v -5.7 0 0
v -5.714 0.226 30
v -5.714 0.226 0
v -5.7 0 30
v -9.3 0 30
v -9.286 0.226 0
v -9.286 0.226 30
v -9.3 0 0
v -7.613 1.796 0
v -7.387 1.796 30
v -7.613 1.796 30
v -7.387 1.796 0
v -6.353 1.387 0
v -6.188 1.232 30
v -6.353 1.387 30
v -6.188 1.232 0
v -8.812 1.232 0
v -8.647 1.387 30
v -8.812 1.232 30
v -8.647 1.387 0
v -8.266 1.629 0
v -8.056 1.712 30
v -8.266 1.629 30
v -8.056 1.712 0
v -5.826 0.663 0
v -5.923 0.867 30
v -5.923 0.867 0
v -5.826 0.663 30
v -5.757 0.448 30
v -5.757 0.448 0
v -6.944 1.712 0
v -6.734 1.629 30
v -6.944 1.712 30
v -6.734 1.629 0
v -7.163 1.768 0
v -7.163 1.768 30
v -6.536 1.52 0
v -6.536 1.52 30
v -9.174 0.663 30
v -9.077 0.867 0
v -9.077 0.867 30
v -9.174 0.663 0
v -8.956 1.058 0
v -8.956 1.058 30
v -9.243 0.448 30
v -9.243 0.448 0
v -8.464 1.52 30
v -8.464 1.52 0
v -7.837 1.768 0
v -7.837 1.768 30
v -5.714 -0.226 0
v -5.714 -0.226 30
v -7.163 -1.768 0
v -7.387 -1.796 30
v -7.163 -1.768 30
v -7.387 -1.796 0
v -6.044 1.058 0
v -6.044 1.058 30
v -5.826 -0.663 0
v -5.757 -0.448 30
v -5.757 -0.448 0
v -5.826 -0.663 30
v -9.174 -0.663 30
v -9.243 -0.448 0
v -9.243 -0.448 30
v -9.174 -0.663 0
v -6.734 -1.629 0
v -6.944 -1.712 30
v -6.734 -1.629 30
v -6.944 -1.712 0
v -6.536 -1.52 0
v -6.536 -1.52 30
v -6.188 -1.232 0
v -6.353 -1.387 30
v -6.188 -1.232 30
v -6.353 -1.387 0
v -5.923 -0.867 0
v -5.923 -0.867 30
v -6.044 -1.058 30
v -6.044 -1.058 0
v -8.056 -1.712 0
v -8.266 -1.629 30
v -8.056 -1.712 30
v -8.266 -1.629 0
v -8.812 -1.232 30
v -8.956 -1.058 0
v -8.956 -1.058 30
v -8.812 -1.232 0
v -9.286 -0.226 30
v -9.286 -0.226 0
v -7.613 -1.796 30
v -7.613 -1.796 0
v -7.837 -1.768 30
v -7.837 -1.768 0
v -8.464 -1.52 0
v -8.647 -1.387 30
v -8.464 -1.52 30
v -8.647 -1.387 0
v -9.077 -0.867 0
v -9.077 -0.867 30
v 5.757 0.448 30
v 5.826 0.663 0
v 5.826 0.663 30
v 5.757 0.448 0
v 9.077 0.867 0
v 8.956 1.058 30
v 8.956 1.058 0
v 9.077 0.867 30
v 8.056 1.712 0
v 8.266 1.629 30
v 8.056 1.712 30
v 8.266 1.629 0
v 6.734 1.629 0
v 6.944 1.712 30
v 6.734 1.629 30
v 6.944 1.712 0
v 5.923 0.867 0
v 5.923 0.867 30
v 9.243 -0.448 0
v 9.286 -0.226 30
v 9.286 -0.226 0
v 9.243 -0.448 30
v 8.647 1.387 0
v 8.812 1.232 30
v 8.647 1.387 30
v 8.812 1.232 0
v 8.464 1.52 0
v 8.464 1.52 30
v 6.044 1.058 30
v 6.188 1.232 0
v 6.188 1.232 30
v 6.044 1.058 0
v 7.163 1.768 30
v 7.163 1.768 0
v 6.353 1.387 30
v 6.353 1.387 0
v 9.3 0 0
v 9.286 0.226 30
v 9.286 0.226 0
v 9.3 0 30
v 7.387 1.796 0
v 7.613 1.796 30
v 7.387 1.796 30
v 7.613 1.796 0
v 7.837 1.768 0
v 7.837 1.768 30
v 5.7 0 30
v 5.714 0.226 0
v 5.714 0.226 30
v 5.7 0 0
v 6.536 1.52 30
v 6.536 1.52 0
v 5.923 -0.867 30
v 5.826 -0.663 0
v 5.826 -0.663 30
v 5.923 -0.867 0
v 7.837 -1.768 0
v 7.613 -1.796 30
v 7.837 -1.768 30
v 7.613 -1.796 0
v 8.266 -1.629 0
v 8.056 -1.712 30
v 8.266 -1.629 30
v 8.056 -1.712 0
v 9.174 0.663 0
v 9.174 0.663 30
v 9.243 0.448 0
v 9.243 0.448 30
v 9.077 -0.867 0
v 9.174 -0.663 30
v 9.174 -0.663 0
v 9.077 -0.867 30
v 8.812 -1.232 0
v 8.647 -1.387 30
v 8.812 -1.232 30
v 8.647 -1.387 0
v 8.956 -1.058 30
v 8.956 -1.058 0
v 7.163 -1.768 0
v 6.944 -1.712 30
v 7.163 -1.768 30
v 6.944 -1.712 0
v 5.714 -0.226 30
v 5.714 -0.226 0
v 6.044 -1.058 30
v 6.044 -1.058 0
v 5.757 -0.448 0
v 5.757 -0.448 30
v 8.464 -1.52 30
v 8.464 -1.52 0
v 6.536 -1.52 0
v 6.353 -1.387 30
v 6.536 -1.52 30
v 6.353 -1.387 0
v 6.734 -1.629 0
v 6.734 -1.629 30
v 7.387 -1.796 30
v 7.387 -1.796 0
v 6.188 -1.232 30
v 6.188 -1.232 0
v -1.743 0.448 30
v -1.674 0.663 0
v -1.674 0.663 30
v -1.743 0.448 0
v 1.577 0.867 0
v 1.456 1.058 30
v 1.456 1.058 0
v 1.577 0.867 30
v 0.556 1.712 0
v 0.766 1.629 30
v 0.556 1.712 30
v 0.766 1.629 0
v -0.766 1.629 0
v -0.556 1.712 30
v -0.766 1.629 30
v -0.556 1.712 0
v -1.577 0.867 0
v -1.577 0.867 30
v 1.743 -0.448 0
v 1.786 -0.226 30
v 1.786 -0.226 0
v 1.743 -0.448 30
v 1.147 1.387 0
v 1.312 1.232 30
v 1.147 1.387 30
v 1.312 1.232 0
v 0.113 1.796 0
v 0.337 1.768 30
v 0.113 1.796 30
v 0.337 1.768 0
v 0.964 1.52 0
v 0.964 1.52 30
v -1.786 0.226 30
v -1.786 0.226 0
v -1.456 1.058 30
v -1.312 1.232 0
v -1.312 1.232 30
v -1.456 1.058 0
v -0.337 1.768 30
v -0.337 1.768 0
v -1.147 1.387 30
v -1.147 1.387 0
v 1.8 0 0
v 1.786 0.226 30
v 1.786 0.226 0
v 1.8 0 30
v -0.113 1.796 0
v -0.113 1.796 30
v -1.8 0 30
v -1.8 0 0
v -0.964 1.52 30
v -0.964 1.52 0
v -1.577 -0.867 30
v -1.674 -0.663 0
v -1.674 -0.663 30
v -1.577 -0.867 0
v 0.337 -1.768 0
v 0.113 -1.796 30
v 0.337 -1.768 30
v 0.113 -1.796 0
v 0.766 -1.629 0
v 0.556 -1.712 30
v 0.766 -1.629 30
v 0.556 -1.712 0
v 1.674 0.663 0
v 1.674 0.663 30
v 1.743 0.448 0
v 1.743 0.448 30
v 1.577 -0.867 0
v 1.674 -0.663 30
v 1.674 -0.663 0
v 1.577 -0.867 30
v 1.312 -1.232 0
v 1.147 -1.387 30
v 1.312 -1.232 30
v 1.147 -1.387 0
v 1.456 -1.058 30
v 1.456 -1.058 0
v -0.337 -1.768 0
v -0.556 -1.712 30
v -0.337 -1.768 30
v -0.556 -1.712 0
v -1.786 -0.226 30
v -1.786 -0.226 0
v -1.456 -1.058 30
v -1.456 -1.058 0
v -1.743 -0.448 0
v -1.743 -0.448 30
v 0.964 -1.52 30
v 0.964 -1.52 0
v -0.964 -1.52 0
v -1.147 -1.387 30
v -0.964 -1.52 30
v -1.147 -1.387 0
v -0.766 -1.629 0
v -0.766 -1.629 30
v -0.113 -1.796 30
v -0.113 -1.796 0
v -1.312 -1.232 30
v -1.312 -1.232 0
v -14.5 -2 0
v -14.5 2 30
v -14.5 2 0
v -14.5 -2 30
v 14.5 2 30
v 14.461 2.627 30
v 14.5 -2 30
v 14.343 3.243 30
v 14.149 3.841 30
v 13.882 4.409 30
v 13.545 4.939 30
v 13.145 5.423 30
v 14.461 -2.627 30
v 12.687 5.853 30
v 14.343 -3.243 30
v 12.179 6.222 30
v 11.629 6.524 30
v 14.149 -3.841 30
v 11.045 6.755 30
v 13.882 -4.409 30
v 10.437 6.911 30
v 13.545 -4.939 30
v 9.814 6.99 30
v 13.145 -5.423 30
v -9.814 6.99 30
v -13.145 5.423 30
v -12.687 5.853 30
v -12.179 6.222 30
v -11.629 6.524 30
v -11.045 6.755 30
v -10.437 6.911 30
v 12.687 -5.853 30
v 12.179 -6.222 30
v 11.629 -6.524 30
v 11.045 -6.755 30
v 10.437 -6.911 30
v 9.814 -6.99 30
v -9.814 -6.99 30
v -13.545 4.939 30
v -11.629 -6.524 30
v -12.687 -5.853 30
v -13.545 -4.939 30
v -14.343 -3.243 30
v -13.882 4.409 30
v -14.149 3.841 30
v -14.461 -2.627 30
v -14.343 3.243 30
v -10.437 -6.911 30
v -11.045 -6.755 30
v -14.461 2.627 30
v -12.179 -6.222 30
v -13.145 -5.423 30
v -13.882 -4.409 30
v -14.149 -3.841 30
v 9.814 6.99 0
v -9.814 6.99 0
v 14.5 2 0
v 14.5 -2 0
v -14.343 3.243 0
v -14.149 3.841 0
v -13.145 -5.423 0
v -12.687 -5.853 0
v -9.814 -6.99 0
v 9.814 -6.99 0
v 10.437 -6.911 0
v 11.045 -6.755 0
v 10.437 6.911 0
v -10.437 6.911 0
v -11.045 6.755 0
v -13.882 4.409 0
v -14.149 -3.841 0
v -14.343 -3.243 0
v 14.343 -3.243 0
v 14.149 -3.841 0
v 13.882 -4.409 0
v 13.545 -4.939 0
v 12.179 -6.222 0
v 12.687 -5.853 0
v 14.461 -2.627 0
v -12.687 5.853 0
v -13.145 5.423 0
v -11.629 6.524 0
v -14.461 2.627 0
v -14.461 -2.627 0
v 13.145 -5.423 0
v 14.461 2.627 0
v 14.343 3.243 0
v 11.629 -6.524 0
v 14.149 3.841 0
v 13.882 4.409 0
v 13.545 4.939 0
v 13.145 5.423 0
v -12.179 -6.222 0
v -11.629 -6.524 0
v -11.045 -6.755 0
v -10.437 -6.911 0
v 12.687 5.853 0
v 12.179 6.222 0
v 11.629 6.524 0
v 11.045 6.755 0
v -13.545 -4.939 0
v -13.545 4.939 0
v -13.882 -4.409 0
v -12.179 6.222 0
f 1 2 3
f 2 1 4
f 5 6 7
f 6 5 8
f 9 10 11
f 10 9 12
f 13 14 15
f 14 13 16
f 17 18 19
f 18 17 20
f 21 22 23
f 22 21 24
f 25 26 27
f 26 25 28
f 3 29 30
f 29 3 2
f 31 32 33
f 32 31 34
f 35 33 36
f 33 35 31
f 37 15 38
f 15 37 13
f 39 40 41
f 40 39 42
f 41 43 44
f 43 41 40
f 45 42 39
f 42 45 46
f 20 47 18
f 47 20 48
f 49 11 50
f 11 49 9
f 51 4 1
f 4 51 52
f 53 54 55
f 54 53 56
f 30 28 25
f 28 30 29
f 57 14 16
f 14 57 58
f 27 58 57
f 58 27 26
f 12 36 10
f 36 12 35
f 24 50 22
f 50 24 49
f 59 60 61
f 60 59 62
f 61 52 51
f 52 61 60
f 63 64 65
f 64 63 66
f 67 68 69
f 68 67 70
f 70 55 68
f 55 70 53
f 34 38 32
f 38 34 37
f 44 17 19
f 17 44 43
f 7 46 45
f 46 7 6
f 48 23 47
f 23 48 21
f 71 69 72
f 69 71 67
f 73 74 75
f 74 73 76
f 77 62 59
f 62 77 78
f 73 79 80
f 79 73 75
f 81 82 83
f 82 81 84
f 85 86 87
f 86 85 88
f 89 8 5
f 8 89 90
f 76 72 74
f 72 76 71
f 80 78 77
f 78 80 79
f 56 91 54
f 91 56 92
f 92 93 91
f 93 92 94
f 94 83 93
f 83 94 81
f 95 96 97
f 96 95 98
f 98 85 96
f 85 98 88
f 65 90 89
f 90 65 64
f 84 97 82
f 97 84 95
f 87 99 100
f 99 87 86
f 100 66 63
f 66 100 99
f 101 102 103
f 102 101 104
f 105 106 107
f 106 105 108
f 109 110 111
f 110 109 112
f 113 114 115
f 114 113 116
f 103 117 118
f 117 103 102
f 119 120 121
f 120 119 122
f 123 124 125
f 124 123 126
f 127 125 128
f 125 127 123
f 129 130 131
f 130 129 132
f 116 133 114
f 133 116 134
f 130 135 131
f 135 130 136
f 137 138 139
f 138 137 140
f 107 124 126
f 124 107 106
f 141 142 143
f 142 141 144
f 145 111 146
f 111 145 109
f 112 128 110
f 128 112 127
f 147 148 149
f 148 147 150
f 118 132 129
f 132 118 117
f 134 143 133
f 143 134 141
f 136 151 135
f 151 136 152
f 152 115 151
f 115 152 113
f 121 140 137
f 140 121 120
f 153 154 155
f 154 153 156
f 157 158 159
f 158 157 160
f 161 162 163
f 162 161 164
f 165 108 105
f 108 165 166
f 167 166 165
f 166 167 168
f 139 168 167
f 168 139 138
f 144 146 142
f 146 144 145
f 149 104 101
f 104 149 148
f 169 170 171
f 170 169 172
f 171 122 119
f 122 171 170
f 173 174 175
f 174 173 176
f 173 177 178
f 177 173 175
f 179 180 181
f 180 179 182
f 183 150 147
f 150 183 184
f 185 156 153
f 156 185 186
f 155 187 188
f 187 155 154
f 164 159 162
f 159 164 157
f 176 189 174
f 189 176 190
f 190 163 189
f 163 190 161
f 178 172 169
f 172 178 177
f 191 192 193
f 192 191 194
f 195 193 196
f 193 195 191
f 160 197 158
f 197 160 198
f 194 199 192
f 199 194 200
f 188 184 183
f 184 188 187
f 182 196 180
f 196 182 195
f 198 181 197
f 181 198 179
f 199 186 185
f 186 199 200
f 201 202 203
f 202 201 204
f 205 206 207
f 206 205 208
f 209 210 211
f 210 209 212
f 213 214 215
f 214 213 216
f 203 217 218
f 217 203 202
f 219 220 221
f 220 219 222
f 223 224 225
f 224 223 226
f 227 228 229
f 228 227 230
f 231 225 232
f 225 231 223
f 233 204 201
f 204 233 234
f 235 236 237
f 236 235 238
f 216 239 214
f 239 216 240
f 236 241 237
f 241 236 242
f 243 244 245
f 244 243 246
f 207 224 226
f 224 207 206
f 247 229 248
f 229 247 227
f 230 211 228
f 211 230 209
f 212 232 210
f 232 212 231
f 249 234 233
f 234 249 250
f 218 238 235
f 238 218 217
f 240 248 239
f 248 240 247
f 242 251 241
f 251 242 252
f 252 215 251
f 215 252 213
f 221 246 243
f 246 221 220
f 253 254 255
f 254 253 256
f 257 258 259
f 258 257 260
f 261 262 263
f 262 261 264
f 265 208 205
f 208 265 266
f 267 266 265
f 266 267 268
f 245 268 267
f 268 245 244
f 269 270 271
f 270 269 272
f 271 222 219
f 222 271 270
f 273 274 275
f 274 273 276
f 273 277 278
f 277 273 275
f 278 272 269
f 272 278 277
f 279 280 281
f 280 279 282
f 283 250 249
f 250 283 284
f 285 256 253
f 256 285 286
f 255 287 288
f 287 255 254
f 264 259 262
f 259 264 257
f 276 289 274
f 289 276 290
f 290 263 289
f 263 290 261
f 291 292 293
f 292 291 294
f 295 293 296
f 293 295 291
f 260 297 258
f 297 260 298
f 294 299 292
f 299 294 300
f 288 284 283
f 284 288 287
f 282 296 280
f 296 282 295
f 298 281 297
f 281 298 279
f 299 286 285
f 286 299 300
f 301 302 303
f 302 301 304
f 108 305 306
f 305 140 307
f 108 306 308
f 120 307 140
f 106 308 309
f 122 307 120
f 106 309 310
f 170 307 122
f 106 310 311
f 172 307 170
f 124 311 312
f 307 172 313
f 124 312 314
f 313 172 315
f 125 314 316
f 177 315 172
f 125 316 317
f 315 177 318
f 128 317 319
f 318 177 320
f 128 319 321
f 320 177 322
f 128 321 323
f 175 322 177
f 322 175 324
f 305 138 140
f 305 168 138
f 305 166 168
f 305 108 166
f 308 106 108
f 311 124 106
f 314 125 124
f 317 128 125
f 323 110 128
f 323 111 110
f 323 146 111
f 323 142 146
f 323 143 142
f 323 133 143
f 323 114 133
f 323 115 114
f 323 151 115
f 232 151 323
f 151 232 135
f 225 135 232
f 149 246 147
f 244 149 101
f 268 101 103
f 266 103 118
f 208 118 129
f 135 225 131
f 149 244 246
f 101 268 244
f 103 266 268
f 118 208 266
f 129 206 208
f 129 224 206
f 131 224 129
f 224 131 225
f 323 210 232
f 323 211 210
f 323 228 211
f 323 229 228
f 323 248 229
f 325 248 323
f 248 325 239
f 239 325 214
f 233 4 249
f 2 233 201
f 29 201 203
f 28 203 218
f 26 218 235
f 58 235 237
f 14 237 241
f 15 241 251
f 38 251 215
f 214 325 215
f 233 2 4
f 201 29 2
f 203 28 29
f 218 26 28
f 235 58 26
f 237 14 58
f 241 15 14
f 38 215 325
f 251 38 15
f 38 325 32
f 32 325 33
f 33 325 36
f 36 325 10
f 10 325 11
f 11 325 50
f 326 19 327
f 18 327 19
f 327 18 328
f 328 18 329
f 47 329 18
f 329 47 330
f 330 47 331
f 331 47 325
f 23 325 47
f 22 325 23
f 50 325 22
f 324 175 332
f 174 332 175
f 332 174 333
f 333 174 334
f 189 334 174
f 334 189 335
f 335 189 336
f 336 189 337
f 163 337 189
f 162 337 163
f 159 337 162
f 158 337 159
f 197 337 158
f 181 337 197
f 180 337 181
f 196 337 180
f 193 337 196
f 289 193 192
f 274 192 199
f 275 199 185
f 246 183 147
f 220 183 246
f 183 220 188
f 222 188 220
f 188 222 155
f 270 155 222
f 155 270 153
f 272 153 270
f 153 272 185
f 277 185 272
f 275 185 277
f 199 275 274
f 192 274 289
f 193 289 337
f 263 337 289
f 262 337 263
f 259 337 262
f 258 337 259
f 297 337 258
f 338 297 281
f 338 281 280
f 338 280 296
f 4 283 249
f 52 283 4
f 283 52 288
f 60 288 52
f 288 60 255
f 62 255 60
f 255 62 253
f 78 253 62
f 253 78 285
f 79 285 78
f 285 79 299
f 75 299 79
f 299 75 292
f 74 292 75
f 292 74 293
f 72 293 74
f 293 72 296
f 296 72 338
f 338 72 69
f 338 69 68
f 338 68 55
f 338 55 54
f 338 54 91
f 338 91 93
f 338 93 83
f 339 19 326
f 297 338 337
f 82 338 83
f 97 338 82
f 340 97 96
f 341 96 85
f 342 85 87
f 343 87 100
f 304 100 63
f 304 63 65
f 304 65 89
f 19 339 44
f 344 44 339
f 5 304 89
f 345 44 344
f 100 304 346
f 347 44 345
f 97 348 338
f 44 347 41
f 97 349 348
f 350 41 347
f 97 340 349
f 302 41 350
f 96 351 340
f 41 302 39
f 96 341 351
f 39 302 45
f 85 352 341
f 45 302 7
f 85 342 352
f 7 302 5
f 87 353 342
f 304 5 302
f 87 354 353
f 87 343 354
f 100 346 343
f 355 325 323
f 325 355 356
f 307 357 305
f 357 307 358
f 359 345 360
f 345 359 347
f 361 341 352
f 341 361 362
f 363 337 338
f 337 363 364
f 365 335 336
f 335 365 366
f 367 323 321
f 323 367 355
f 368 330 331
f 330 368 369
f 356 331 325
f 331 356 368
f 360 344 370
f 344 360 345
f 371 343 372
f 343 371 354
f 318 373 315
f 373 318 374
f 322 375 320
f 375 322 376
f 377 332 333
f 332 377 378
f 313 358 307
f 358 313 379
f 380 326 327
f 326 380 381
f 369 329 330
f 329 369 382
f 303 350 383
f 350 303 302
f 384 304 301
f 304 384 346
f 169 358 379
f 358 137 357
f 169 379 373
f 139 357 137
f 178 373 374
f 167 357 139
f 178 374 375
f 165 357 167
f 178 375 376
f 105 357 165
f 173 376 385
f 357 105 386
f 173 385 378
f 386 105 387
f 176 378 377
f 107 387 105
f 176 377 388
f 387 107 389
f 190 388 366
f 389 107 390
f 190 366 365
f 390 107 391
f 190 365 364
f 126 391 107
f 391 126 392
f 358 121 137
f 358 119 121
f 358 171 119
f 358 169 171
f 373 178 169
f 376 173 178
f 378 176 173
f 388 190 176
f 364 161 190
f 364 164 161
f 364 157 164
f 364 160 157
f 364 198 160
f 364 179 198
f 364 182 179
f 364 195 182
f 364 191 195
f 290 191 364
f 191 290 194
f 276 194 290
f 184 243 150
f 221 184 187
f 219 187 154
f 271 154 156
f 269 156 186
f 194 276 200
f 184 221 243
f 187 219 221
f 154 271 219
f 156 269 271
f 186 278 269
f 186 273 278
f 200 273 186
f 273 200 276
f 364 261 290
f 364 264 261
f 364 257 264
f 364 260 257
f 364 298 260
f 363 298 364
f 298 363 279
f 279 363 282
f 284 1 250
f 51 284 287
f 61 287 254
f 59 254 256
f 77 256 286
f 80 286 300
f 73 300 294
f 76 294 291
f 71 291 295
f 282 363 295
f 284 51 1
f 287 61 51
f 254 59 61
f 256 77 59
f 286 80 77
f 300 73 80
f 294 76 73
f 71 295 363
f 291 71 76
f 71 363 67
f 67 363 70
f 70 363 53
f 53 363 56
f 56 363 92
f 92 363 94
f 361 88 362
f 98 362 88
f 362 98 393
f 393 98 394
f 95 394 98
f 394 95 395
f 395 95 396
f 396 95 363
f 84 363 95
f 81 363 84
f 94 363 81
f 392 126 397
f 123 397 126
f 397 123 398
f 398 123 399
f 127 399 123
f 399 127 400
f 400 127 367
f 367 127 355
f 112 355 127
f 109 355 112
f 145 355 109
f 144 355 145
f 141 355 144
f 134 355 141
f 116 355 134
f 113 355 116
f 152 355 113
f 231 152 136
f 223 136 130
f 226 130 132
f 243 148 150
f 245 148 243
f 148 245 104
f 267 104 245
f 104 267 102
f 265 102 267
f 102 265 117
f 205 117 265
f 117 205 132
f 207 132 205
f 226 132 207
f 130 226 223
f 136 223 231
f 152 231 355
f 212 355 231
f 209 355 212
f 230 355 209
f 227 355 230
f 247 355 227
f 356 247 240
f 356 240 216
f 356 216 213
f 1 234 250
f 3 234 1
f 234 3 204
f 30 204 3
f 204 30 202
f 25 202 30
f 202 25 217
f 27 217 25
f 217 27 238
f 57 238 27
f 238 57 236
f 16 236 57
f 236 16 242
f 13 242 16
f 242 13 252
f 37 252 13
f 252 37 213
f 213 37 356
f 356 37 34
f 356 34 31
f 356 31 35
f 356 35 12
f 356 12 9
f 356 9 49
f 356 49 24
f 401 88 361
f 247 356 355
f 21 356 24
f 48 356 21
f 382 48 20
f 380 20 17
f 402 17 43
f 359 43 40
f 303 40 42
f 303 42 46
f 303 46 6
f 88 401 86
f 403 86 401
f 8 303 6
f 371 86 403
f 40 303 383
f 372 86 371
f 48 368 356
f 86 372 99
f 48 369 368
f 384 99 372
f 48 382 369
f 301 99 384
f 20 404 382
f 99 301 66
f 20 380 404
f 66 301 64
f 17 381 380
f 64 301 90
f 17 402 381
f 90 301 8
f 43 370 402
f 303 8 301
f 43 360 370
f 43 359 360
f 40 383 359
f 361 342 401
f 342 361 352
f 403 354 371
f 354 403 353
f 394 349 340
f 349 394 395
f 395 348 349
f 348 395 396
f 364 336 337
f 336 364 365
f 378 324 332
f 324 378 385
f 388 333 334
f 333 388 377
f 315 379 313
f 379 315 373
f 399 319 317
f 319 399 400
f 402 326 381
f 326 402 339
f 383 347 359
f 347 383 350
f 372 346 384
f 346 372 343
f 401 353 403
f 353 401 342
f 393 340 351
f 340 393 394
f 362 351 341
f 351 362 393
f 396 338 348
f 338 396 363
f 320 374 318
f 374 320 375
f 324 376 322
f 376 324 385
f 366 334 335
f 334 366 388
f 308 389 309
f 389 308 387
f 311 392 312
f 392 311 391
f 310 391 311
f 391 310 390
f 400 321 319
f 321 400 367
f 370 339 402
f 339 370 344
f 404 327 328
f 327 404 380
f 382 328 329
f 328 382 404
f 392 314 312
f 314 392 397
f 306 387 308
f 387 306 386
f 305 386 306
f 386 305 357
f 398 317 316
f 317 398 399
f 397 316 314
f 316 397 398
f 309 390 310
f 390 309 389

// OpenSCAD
$fn = 50;


difference() {
	union() {
		hull() {
			translate(v = [-9.5000000000, 2.0000000000, 0]) {
				cylinder(h = 30, r = 5);
			}
			translate(v = [9.5000000000, 2.0000000000, 0]) {
				cylinder(h = 30, r = 5);
			}
			translate(v = [-9.5000000000, -2.0000000000, 0]) {
				cylinder(h = 30, r = 5);
			}
			translate(v = [9.5000000000, -2.0000000000, 0]) {
				cylinder(h = 30, r = 5);
			}
		}
	}
	union() {
		translate(v = [-7.5000000000, 0.0000000000, 0]) {
			translate(v = [0, 0, -100]) {
				cylinder(h = 200, r = 1.8000000000);
			}
		}
		translate(v = [7.5000000000, 0.0000000000, 0]) {
			translate(v = [0, 0, -100]) {
				cylinder(h = 200, r = 1.8000000000);
			}
		}
		translate(v = [-7.5000000000, 0.0000000000, 0]) {
			translate(v = [0, 0, -100]) {
				cylinder(h = 200, r = 1.8000000000);
			}
		}
		translate(v = [0, 0, -100]) {
			cylinder(h = 200, r = 1.8000000000);
		}
		translate(v = [7.5000000000, 0.0000000000, 0]) {
			translate(v = [0, 0, -100]) {
				cylinder(h = 200, r = 1.8000000000);
			}
		}
	}
}
